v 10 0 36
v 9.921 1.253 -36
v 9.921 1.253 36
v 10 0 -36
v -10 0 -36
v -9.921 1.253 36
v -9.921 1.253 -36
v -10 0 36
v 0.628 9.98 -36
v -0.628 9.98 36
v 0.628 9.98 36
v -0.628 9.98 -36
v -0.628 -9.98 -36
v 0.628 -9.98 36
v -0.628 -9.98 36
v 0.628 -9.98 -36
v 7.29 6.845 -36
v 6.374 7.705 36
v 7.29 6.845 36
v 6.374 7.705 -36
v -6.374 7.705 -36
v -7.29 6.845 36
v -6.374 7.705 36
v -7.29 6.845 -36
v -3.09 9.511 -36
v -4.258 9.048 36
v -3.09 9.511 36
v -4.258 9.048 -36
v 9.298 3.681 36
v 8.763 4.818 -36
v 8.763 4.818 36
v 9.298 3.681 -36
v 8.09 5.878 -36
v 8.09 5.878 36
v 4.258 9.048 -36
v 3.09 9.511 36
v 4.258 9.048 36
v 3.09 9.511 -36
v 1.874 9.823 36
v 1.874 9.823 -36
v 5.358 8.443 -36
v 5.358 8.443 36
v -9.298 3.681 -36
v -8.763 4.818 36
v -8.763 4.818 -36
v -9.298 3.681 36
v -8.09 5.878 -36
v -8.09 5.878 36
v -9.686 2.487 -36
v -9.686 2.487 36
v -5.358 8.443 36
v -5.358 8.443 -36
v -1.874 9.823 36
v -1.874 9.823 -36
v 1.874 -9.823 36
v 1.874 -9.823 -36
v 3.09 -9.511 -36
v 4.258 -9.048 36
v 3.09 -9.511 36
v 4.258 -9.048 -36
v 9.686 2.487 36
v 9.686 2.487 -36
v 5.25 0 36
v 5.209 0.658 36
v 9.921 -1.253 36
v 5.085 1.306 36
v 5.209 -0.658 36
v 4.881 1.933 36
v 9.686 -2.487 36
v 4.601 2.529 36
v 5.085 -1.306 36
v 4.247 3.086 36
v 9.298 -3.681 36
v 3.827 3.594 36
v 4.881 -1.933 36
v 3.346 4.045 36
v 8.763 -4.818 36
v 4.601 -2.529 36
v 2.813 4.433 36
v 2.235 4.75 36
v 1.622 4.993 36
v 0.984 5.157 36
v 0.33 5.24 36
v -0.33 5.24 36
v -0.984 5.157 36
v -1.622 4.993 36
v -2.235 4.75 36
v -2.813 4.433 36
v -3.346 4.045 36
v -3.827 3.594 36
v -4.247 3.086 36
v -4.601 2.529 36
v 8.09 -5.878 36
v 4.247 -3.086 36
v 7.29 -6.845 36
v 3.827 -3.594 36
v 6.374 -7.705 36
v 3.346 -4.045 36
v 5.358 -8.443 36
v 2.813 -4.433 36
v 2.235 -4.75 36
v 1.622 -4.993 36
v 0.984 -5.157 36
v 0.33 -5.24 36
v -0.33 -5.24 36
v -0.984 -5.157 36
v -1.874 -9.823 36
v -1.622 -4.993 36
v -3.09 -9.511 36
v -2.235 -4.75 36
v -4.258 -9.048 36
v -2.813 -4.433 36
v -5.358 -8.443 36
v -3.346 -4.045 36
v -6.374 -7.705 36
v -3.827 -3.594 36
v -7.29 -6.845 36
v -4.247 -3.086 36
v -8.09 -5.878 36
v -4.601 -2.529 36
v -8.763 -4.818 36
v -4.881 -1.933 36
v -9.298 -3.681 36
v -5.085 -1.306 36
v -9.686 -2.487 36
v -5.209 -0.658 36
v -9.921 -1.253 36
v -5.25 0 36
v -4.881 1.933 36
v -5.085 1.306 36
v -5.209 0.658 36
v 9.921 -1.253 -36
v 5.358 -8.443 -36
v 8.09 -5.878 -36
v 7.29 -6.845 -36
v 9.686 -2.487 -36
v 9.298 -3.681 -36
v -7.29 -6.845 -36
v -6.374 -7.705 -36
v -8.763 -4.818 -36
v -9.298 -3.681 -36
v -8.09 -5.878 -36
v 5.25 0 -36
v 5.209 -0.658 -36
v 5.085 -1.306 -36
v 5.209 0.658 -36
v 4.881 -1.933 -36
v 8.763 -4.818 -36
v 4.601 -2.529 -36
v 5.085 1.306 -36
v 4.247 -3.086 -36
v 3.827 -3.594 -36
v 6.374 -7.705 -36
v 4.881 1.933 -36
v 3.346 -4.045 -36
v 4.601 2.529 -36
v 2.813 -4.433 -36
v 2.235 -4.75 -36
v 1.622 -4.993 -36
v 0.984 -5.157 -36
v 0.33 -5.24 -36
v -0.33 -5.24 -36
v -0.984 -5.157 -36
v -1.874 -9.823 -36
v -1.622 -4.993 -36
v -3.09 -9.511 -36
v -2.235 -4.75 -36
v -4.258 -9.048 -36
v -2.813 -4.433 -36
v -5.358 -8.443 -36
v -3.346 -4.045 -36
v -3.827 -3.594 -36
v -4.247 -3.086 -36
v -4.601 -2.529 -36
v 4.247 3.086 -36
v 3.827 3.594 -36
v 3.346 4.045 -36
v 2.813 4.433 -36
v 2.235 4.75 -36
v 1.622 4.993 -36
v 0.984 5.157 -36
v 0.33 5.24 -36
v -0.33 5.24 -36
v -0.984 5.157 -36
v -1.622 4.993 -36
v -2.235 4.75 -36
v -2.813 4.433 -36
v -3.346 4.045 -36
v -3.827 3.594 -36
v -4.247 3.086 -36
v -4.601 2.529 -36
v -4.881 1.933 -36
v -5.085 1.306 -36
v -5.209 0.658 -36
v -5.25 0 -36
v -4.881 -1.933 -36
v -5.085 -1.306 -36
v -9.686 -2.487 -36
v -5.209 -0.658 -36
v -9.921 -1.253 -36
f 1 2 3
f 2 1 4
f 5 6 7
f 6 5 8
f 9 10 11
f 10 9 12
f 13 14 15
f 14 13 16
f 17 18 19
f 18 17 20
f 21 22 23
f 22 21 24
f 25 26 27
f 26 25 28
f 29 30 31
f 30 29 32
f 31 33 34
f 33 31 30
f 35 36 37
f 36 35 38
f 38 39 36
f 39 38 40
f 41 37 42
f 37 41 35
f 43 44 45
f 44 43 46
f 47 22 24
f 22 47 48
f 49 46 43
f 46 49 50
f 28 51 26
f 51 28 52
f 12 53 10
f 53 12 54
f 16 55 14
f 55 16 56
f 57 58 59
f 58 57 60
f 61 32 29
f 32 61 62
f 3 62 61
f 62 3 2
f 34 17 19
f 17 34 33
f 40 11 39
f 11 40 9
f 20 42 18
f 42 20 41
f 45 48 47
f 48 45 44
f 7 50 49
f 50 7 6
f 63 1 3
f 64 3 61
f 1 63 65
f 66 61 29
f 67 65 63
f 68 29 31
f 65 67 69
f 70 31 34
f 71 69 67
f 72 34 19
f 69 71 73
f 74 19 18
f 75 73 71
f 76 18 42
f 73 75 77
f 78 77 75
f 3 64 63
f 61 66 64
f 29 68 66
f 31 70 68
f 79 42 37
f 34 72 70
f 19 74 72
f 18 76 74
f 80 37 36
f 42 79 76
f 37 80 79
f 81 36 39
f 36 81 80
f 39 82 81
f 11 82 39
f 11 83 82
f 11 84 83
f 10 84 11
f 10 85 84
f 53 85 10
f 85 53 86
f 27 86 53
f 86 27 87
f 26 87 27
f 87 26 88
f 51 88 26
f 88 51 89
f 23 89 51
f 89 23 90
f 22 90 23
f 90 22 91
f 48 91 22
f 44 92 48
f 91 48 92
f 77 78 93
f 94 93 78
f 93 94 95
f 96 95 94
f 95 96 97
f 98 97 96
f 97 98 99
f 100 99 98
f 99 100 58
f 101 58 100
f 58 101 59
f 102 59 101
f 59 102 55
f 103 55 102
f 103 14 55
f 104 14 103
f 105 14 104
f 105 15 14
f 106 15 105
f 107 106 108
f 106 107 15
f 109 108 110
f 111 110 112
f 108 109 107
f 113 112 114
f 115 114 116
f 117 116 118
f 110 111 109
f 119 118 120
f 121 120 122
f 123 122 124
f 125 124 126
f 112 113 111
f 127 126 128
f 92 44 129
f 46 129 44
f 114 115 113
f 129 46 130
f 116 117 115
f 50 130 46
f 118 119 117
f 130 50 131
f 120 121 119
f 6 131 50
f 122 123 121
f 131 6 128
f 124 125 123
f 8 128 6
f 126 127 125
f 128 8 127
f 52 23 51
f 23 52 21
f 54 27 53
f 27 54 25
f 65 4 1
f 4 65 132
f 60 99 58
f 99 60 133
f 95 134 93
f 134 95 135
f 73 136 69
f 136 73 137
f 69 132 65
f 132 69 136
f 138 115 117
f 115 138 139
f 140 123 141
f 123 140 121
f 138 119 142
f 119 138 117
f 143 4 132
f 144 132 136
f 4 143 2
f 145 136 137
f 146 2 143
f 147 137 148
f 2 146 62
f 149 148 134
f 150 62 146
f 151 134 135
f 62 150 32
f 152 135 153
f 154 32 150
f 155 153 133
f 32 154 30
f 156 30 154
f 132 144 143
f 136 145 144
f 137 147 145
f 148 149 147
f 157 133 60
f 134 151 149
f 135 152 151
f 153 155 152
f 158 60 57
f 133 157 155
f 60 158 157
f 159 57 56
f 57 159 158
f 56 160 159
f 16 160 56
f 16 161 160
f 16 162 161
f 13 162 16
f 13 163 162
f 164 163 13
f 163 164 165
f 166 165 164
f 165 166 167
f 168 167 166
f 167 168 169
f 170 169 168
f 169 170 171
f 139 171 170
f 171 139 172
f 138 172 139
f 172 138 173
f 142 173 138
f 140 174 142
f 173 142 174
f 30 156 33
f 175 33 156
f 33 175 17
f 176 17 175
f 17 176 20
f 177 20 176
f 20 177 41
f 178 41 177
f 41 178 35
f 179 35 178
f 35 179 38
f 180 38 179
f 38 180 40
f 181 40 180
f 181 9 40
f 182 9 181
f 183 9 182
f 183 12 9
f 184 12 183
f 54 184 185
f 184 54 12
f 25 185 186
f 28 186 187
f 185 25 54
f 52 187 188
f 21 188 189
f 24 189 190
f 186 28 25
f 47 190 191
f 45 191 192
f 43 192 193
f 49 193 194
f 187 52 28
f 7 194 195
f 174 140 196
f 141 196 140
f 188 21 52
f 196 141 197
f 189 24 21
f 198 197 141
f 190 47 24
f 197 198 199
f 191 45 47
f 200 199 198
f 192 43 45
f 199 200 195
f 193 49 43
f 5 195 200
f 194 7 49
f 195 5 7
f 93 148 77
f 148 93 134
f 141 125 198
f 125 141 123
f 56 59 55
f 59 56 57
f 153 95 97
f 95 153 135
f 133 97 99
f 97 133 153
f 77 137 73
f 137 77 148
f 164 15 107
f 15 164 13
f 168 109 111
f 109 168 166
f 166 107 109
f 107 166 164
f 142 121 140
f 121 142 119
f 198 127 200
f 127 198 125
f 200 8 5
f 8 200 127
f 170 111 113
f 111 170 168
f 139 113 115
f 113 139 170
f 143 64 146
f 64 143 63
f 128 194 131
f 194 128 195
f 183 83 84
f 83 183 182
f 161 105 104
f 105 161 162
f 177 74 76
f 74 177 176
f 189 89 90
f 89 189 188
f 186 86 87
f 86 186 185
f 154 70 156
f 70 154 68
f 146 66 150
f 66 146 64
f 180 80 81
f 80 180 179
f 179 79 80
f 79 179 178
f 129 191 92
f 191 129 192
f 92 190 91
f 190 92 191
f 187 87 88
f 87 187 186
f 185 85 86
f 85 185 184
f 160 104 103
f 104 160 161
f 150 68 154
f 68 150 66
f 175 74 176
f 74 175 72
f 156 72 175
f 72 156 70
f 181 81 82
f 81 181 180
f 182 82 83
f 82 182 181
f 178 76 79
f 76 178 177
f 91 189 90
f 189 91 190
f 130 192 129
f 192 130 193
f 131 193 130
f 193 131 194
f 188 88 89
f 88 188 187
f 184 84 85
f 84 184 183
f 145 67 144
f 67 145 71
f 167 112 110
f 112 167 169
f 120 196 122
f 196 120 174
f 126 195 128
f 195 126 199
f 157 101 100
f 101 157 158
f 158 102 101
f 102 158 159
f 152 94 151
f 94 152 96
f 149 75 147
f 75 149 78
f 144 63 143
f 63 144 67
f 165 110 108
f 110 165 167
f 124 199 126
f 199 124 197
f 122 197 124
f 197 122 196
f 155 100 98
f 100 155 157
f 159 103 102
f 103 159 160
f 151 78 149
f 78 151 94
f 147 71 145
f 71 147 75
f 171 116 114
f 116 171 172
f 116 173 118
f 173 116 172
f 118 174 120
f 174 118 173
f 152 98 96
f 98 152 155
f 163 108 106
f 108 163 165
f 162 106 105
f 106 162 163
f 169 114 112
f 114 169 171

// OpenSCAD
$fn = 50;


difference() {
	union() {
		translate(v = [0, 0, -36.0000000000]) {
			cylinder(h = 72, r = 10.0000000000);
		}
	}
	union() {
		translate(v = [0, 0, -100.0000000000]) {
			cylinder(h = 200, r = 5.2500000000);
		}
	}
}
